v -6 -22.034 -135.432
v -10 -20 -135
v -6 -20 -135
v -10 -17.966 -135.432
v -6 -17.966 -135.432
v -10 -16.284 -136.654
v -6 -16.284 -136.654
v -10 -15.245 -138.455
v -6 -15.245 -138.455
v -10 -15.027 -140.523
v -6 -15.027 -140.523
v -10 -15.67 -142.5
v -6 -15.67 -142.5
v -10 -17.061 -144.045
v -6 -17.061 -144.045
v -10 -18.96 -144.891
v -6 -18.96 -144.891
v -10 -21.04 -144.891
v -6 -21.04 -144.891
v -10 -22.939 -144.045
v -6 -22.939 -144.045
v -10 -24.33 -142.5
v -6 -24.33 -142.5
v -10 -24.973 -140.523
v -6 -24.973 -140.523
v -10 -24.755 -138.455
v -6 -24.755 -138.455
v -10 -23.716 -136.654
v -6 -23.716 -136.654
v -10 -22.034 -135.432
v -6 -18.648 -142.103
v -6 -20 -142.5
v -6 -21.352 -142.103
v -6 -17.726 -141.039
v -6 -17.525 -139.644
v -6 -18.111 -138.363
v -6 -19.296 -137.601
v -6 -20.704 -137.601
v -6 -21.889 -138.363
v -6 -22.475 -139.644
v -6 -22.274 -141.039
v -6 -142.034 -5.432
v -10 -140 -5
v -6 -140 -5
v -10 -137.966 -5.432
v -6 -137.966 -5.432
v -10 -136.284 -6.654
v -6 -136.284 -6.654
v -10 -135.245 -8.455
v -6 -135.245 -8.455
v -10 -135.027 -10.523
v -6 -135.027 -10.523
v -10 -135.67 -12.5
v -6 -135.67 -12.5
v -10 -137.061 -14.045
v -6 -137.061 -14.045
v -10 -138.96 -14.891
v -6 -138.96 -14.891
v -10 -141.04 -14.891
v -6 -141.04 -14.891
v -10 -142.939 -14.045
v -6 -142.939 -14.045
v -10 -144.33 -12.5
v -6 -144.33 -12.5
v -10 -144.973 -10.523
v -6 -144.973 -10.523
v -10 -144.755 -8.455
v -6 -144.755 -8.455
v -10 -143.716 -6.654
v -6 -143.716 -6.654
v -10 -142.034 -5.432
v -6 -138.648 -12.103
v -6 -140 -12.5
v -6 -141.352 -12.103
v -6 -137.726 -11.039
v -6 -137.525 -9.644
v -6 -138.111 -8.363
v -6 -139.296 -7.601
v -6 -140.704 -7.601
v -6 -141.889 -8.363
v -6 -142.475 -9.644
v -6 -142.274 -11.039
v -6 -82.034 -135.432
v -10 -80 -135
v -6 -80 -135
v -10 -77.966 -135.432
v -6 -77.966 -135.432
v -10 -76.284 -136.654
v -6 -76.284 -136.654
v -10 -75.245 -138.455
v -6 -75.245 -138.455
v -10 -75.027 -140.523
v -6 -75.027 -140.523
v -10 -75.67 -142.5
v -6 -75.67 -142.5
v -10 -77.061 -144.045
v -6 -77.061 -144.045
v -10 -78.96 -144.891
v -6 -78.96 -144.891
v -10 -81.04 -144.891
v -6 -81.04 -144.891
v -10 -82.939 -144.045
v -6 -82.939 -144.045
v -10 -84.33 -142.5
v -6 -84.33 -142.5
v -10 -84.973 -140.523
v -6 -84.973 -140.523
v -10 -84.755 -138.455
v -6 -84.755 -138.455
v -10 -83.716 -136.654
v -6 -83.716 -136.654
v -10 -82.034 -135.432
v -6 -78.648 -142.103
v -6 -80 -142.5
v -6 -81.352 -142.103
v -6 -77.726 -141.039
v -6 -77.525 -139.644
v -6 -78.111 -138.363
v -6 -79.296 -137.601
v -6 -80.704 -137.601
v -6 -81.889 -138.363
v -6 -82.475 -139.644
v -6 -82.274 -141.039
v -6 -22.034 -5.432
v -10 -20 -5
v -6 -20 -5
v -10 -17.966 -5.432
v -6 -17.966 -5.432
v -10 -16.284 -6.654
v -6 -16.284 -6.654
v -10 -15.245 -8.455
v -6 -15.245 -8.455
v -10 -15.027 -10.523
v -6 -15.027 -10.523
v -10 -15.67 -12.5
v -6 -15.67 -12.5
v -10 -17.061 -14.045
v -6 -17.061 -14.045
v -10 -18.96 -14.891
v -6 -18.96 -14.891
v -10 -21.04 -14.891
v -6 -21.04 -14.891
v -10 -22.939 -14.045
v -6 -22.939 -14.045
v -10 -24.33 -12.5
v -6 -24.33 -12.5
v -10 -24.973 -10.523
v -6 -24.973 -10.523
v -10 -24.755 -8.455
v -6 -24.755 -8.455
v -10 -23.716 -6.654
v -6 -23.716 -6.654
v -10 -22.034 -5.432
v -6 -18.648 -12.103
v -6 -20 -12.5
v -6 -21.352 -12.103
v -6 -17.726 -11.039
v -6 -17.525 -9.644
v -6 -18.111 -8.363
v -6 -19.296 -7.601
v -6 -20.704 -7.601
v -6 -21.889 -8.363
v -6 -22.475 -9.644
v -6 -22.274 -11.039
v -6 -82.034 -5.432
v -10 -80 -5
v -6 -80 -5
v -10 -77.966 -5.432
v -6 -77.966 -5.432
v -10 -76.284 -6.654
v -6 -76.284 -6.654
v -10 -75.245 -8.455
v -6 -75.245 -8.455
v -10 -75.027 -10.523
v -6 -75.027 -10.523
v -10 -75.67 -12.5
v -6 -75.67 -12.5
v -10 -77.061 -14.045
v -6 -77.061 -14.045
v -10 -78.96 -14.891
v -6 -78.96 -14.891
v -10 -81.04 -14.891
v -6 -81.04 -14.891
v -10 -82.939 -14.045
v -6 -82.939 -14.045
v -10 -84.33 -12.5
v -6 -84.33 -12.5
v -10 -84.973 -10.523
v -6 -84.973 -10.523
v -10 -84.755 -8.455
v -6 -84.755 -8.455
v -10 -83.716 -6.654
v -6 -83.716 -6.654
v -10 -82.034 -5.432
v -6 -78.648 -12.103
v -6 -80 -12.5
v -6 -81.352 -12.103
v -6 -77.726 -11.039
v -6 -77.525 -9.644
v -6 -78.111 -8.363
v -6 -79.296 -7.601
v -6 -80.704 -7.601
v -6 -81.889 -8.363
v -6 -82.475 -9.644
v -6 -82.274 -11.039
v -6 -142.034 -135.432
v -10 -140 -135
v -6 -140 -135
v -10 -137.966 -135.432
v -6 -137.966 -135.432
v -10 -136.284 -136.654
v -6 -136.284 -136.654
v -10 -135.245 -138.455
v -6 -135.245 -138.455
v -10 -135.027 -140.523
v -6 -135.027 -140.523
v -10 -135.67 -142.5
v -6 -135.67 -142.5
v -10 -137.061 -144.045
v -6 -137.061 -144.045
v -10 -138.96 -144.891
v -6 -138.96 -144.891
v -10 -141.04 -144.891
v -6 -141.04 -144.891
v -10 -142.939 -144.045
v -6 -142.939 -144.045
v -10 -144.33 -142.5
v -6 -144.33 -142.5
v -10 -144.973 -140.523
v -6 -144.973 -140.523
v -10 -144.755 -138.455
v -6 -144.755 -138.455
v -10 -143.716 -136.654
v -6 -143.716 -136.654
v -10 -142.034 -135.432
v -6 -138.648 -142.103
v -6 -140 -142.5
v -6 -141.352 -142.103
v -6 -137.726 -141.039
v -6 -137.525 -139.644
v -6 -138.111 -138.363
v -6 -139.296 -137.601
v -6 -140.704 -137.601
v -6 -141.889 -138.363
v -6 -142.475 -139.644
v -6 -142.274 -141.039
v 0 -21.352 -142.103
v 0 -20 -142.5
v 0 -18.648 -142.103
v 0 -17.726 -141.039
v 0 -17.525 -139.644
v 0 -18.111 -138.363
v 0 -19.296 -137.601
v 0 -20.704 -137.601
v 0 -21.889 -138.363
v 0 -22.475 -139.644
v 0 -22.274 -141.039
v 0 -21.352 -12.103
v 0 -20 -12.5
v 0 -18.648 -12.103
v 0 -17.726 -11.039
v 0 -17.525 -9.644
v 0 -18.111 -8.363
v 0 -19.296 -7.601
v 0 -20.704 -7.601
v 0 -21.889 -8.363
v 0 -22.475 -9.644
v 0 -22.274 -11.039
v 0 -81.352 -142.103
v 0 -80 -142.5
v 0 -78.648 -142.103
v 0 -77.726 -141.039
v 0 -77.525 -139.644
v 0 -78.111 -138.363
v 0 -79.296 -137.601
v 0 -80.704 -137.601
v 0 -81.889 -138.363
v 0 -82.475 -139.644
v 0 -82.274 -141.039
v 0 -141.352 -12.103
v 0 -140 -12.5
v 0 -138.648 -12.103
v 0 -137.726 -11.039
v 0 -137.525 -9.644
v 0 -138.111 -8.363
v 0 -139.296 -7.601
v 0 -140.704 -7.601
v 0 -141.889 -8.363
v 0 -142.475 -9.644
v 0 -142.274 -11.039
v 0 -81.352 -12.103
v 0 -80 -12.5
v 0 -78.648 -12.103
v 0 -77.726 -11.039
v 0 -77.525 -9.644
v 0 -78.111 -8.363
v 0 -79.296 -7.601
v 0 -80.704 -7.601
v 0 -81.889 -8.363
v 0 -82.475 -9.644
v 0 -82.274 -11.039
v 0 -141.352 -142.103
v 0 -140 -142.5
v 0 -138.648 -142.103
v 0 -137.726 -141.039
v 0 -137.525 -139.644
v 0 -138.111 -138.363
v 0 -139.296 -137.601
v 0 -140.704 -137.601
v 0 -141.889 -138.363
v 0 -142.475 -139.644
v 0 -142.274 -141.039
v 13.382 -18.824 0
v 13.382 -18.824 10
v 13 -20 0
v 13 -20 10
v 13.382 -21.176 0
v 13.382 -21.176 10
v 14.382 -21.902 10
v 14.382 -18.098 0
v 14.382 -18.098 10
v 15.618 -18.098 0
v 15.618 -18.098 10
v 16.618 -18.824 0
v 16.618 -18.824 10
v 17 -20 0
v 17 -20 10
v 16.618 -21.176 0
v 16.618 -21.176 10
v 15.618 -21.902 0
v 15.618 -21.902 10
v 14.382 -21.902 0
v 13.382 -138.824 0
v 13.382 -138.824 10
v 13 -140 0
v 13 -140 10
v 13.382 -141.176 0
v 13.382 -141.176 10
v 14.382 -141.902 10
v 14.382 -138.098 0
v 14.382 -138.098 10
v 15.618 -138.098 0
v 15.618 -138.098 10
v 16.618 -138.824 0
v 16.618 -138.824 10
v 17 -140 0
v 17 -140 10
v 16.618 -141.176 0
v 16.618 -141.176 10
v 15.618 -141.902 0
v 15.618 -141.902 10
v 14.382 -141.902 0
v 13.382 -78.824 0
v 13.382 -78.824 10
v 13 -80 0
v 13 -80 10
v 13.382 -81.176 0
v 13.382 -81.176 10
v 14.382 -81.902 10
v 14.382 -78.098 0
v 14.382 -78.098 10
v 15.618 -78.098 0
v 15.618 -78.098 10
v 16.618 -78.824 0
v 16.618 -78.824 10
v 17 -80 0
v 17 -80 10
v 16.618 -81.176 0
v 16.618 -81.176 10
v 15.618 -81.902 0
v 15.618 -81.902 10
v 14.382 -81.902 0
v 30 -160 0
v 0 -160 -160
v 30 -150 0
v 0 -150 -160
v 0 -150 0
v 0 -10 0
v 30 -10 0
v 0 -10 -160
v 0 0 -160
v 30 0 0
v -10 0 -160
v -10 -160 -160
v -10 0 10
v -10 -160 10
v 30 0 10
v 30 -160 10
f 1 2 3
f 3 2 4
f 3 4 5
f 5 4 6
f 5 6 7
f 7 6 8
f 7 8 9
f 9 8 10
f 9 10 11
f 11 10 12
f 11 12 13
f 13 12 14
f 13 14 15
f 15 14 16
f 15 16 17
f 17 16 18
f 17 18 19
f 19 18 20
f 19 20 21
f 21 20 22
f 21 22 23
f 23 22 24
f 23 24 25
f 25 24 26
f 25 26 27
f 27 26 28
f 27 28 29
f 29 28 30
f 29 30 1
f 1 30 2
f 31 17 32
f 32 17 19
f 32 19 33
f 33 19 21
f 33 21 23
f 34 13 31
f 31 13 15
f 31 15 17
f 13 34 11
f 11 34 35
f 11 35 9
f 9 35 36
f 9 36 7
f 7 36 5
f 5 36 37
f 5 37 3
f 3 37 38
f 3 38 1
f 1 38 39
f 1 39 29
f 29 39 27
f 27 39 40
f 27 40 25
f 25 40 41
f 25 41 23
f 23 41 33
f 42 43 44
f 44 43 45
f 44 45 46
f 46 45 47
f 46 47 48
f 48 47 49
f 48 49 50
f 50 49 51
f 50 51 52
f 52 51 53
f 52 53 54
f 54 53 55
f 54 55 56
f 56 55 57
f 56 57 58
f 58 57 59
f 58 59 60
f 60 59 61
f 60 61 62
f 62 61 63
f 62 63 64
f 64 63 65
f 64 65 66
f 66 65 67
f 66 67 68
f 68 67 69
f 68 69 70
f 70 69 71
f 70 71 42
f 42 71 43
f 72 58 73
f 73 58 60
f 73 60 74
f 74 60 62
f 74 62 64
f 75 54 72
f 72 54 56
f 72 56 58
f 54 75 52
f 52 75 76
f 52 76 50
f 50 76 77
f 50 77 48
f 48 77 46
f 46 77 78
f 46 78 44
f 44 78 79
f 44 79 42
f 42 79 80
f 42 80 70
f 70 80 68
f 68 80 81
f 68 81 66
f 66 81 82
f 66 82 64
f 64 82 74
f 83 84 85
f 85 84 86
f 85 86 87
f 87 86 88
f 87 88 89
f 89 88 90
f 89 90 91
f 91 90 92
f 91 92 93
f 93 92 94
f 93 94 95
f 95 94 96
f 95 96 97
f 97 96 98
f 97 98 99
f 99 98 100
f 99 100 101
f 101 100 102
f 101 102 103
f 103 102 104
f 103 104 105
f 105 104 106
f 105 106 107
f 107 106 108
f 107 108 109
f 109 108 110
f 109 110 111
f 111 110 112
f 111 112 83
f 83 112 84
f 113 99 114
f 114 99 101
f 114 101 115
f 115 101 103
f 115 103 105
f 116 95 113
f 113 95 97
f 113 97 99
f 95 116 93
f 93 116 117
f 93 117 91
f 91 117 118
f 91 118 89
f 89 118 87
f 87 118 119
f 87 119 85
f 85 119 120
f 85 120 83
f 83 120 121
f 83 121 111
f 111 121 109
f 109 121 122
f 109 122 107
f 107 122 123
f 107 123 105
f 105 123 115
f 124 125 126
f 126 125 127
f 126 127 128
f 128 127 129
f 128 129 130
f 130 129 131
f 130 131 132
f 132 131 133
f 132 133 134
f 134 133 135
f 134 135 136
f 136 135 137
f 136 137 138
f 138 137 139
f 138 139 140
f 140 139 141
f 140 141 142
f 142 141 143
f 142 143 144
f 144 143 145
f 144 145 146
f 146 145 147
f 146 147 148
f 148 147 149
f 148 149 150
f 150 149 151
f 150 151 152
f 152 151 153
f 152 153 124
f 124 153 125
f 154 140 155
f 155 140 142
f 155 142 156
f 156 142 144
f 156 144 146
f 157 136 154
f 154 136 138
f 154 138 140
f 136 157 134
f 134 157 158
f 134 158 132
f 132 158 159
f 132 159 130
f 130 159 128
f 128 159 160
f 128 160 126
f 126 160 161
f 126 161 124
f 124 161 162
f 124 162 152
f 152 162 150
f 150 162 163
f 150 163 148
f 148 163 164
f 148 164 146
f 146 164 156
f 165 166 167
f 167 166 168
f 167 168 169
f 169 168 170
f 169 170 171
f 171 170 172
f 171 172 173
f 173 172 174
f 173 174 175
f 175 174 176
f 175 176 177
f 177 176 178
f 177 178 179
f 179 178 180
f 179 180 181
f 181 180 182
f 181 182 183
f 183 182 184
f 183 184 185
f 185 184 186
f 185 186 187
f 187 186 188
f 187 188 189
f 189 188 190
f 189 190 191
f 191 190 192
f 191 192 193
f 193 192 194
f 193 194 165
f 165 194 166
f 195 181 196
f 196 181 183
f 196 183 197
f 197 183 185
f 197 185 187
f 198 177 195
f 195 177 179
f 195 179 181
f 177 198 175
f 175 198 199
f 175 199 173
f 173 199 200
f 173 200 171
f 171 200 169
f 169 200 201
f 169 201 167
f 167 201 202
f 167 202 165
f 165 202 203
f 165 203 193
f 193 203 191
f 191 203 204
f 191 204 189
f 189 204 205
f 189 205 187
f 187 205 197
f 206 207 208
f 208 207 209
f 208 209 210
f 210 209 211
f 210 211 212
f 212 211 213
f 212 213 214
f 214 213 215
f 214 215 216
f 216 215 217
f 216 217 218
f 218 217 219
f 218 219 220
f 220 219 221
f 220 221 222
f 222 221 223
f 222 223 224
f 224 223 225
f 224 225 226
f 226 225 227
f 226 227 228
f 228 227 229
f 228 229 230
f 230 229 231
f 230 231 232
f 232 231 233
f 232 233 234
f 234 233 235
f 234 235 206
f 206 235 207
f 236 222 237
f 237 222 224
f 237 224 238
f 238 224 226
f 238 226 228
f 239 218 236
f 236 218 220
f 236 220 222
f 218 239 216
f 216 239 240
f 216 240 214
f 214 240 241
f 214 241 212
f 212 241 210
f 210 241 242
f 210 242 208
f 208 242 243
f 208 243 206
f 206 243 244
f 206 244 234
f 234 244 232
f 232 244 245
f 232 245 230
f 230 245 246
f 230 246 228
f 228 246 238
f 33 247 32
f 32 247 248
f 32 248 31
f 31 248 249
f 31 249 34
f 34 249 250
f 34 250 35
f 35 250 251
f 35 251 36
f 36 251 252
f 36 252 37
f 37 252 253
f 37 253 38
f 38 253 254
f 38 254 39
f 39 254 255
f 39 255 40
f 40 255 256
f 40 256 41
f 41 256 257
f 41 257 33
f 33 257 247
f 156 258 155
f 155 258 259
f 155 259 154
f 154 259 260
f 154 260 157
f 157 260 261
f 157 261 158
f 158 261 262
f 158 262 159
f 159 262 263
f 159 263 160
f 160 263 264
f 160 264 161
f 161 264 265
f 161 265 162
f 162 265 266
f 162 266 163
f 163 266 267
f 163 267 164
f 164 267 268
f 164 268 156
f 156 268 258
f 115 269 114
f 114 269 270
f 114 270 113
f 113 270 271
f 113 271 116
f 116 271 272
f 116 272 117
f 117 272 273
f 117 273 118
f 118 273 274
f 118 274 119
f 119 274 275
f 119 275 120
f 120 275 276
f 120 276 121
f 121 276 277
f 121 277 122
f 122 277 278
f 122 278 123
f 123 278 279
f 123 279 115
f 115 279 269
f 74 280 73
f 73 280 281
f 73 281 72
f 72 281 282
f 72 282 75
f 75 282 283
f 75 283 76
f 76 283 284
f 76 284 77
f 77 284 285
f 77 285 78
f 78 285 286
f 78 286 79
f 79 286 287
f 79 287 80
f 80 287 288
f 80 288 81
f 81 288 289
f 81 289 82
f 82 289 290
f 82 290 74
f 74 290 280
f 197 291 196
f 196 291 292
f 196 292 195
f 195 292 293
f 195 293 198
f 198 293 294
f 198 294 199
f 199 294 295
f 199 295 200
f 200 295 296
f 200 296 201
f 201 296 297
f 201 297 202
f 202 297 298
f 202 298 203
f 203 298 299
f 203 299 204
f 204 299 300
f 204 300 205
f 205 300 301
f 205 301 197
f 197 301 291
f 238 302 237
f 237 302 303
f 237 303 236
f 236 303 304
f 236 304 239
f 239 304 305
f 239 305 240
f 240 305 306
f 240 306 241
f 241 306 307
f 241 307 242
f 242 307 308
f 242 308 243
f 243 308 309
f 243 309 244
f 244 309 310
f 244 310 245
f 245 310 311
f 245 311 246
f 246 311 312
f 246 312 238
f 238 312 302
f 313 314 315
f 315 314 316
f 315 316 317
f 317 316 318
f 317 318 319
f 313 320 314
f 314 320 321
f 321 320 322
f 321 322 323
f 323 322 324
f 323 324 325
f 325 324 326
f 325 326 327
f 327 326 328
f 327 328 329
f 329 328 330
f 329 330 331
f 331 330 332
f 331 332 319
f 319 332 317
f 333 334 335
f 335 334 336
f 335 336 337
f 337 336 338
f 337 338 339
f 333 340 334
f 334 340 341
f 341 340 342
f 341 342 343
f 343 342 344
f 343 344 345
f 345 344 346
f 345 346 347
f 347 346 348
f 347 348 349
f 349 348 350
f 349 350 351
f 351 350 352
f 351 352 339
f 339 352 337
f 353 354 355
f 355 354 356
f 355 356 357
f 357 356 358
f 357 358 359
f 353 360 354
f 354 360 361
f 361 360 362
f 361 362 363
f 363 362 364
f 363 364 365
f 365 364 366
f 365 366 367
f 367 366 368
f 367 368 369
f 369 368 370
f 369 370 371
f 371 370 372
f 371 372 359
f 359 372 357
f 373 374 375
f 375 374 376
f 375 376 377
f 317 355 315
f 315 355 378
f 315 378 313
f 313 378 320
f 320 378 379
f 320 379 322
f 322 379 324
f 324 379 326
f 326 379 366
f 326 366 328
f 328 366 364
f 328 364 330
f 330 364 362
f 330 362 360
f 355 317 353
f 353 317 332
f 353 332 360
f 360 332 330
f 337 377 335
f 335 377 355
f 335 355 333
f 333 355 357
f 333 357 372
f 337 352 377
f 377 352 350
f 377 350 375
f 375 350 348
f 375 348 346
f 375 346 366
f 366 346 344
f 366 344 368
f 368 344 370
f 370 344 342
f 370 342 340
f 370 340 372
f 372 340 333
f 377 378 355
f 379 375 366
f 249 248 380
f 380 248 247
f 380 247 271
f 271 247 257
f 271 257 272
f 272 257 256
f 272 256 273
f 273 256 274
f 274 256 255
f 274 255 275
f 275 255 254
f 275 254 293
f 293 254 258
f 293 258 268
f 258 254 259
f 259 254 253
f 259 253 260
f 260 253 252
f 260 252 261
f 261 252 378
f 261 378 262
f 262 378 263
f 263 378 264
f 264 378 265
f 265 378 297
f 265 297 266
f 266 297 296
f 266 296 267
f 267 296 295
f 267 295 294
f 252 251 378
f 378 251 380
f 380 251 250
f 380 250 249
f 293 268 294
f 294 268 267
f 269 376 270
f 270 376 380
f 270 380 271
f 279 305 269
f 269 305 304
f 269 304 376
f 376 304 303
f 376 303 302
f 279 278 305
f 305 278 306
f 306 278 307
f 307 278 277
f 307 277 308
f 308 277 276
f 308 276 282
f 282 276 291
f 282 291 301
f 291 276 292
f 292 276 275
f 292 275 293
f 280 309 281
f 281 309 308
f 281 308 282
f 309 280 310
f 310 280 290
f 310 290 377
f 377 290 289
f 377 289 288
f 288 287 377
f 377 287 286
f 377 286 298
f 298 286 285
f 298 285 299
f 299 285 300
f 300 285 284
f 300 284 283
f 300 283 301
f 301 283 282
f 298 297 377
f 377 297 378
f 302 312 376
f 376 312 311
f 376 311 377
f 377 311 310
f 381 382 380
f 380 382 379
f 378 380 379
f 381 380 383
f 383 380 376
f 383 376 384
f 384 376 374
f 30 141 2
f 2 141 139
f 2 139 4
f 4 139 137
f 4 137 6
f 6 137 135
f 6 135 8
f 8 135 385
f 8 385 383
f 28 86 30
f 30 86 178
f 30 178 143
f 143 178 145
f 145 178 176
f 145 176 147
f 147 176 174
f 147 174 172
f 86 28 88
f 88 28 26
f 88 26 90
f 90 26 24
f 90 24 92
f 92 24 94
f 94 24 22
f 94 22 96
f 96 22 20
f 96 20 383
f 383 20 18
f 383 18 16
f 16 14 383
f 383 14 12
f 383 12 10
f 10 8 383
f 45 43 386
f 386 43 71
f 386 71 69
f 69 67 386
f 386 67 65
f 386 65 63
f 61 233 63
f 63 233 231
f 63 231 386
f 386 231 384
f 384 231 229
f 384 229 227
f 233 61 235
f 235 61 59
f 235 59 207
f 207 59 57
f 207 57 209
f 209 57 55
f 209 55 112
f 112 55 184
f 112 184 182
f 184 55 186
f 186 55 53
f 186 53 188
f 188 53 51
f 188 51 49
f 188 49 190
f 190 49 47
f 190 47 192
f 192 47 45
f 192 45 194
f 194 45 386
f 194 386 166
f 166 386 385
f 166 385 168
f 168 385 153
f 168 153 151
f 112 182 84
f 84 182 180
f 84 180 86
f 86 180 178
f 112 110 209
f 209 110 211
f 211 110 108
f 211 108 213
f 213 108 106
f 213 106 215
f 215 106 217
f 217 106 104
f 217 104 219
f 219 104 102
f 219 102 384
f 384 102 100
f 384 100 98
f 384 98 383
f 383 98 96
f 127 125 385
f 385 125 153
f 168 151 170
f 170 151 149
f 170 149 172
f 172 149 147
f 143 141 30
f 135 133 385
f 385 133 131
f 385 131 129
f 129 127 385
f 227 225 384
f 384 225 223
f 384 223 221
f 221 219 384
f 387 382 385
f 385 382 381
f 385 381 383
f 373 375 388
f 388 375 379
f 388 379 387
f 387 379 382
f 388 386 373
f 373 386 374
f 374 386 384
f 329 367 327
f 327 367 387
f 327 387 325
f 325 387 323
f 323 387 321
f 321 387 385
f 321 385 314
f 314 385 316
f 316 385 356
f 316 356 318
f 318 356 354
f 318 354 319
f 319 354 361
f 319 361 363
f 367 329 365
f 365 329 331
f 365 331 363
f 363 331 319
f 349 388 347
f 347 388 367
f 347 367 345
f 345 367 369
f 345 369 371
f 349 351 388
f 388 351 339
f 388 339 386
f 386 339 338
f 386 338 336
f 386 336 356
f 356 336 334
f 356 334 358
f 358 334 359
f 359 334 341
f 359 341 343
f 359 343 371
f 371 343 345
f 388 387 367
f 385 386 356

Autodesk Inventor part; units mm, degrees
ref_plane "YZ Plane" through (0, 0, 0) normal (1, 0, 0) x (0, 1, 0)
ref_plane "XZ Plane" through (0, 0, 0) normal (0, 1, 0) x (-1, 0, 0)
ref_plane "XY Plane" through (0, 0, 0) normal (0, 0, 1) x (1, 0, 0)
sketch "Sketch21" plane through (0, 0, 0) normal (0, 0, 1) x (1, 0, 0)
  line L0 (0, 0) -> (30, 0)
  line L1 (30, 0) -> (30, -160)
  line L2 (30, -160) -> (0, -160)
  line L3 (0, -160) -> (0, 0)
  dimension "d53" = 30
  dimension "d1" = 160
extrude "Extrusion15" add sketch "Sketch21" along normal blind 10
sketch "Sketch22" plane through (0, -160, 0) normal (-1, 0, 0) x (0, 0, 1)
  line L0 (0, 160) -> (10, 160) projected
  line L1 (10, 160) -> (-160, 160)
  line L2 (-160, 160) -> (-160, 0)
  line L3 (-160, 0) -> (10, 0)
  line L4 (10, 0) -> (10, 160)
  dimension "d57" = 170
  dimension "d58" = 160
extrude "Extrusion16" add sketch "Sketch22" along normal blind 10
sketch "Sketch23" plane through (30, 0, 10) normal (0, 1, 0) x (1, 0, 0)
  line L0 (-30, 170) -> (-40, 170) projected
  line L1 (0, 10) -> (0, 0) projected
  line L2 (-30, 170) -> (0, 10)
  line L3 (-30, 10) -> (0, 10) projected
  line L4 (0, 10) -> (-30, 10)
  line L5 (-30, 10) -> (-30, 170)
  line L6 (-40, 170) -> (-40, 0) projected
extrude "Extrusion17" add sketch "Sketch23" against normal blind 10
sketch "Sketch24" plane through (30, -160, 0) normal (0, -1, 0) x (1, 0, 0)
  line L0 (-30, -160) -> (-40, -160) projected
  line L1 (-30, 0) -> (0, 0) projected
  line L2 (-30, -160) -> (-30, 0)
  line L3 (0, 0) -> (0, 10) projected
  line L4 (-30, 0) -> (0, 0)
  line L5 (-30, -160) -> (0, 0) projected
  line L6 (0, 0) -> (-30, -160)
extrude "Extrusion18" add sketch "Sketch24" against normal blind 10
sketch "Sketch25" plane through (0, 0, 10) normal (0, 0, 1) x (1, 0, 0)
  circle A0 centre (15, -20) radius 2
  circle A1 centre (15, -80) radius 2
  circle A2 centre (15, -140) radius 2
  line L0 (30, -160) -> (-10, -160) projected
  line L1 (30, 0) -> (-10, 0) projected
  point P0 (0, 0)
  dimension "d65" = 4
  dimension "d66" = 4
  dimension "d67" = 4
  dimension "d70" = 20
  dimension "d71" = 20
  dimension "d72" = 80
extrude "Extrusion19" cut sketch "Sketch25" against normal blind 20
sketch "Sketch27" plane through (-10, -160, 0) normal (-1, 0, 0) x (0, 0, 1)
  circle A0 centre (-10, 20) radius 2.5
  line L0 (-160, 0) -> (10, 0) projected
  circle A1 centre (-10, 80) radius 2.5
  circle A2 centre (-10, 140) radius 2.5
  line L1 (10, 160) -> (-160, 160) projected
  line L2 (10, 0) -> (10, 160) projected
  circle A3 centre (-140, 80) radius 2.5
  line L3 (-160, 160) -> (-160, 0) projected
  circle A4 centre (-140, 20) radius 2.5
  circle A5 centre (-140, 140) radius 2.5
  point P0 (0, 160)
  dimension "d73" = 20
  dimension "d74" = 5
  dimension "d75" = 5
  dimension "d76" = 80
  dimension "d77" = 5
  dimension "d78" = 20
  dimension "d79" = 20
  dimension "d80" = 20
  dimension "d81" = 20
  dimension "d84" = 5
  dimension "d85" = 20
  dimension "d86" = 80
  dimension "d87" = 5
  dimension "d88" = 20
  dimension "d89" = 20
  dimension "d90" = 5
  dimension "d91" = 20
  dimension "d92" = 20
extrude "Extrusion20" cut sketch "Sketch27" against normal blind 20 contours A0 | A1 | A2 | A3 | A4 | A5
sketch "Sketch29" plane through (-10, -160, 0) normal (-1, 0, 0) x (0, 0, 1)
  circle A0 centre (-140, 80) radius 2.5 projected
  circle A1 centre (-140, 80) radius 5
  circle A2 centre (-140, 20) radius 2.5 projected
  circle A3 centre (-140, 20) radius 5
  circle A4 centre (-140, 140) radius 2.5 projected
  circle A5 centre (-140, 140) radius 5
  circle A6 centre (-10, 20) radius 2.5 projected
  circle A7 centre (-10, 20) radius 5
  circle A8 centre (-10, 80) radius 2.5 projected
  circle A9 centre (-10, 80) radius 5
  circle A10 centre (-10, 140) radius 2.5 projected
  circle A11 centre (-10, 140) radius 5
  point P0 (0, 160)
  dimension "d93" = 10
  dimension "d94" = 10
  dimension "d95" = 10
  dimension "d96" = 10
  dimension "d97" = 10
  dimension "d98" = 10
extrude "Extrusion21" cut sketch "Sketch29" against normal blind 4 contours A0 | A1 | A2 | A3 | A4 | A5 | A6 | A7 | A8 | A9 | A10 | A11
equation "\"d58\" = d1"
equation "\"d65\" = d67"
equation "\"d66\" = d67"
equation "\"d71\" = d70"
equation "\"d73\" = d70"
equation "\"d74\" = d75"
equation "\"d76\" = d72"
equation "\"d77\" = d75"
equation "\"d78\" = d70"
equation "\"d80\" = d79"
equation "\"d81\" = d79"
equation "\"d84\" = d75"
equation "\"d85\" = d79"
equation "\"d86\" = d72"
equation "\"d87\" = d75"
equation "\"d88\" = d79"
equation "\"d89\" = d70"
equation "\"d90\" = d75"
equation "\"d91\" = d79"
equation "\"d92\" = d70"
equation "\"d94\" = d93"
equation "\"d95\" = d93"
equation "\"d96\" = d93"
equation "\"d97\" = d93"
equation "\"d98\" = d93"
properties part number "bracket_v02"
